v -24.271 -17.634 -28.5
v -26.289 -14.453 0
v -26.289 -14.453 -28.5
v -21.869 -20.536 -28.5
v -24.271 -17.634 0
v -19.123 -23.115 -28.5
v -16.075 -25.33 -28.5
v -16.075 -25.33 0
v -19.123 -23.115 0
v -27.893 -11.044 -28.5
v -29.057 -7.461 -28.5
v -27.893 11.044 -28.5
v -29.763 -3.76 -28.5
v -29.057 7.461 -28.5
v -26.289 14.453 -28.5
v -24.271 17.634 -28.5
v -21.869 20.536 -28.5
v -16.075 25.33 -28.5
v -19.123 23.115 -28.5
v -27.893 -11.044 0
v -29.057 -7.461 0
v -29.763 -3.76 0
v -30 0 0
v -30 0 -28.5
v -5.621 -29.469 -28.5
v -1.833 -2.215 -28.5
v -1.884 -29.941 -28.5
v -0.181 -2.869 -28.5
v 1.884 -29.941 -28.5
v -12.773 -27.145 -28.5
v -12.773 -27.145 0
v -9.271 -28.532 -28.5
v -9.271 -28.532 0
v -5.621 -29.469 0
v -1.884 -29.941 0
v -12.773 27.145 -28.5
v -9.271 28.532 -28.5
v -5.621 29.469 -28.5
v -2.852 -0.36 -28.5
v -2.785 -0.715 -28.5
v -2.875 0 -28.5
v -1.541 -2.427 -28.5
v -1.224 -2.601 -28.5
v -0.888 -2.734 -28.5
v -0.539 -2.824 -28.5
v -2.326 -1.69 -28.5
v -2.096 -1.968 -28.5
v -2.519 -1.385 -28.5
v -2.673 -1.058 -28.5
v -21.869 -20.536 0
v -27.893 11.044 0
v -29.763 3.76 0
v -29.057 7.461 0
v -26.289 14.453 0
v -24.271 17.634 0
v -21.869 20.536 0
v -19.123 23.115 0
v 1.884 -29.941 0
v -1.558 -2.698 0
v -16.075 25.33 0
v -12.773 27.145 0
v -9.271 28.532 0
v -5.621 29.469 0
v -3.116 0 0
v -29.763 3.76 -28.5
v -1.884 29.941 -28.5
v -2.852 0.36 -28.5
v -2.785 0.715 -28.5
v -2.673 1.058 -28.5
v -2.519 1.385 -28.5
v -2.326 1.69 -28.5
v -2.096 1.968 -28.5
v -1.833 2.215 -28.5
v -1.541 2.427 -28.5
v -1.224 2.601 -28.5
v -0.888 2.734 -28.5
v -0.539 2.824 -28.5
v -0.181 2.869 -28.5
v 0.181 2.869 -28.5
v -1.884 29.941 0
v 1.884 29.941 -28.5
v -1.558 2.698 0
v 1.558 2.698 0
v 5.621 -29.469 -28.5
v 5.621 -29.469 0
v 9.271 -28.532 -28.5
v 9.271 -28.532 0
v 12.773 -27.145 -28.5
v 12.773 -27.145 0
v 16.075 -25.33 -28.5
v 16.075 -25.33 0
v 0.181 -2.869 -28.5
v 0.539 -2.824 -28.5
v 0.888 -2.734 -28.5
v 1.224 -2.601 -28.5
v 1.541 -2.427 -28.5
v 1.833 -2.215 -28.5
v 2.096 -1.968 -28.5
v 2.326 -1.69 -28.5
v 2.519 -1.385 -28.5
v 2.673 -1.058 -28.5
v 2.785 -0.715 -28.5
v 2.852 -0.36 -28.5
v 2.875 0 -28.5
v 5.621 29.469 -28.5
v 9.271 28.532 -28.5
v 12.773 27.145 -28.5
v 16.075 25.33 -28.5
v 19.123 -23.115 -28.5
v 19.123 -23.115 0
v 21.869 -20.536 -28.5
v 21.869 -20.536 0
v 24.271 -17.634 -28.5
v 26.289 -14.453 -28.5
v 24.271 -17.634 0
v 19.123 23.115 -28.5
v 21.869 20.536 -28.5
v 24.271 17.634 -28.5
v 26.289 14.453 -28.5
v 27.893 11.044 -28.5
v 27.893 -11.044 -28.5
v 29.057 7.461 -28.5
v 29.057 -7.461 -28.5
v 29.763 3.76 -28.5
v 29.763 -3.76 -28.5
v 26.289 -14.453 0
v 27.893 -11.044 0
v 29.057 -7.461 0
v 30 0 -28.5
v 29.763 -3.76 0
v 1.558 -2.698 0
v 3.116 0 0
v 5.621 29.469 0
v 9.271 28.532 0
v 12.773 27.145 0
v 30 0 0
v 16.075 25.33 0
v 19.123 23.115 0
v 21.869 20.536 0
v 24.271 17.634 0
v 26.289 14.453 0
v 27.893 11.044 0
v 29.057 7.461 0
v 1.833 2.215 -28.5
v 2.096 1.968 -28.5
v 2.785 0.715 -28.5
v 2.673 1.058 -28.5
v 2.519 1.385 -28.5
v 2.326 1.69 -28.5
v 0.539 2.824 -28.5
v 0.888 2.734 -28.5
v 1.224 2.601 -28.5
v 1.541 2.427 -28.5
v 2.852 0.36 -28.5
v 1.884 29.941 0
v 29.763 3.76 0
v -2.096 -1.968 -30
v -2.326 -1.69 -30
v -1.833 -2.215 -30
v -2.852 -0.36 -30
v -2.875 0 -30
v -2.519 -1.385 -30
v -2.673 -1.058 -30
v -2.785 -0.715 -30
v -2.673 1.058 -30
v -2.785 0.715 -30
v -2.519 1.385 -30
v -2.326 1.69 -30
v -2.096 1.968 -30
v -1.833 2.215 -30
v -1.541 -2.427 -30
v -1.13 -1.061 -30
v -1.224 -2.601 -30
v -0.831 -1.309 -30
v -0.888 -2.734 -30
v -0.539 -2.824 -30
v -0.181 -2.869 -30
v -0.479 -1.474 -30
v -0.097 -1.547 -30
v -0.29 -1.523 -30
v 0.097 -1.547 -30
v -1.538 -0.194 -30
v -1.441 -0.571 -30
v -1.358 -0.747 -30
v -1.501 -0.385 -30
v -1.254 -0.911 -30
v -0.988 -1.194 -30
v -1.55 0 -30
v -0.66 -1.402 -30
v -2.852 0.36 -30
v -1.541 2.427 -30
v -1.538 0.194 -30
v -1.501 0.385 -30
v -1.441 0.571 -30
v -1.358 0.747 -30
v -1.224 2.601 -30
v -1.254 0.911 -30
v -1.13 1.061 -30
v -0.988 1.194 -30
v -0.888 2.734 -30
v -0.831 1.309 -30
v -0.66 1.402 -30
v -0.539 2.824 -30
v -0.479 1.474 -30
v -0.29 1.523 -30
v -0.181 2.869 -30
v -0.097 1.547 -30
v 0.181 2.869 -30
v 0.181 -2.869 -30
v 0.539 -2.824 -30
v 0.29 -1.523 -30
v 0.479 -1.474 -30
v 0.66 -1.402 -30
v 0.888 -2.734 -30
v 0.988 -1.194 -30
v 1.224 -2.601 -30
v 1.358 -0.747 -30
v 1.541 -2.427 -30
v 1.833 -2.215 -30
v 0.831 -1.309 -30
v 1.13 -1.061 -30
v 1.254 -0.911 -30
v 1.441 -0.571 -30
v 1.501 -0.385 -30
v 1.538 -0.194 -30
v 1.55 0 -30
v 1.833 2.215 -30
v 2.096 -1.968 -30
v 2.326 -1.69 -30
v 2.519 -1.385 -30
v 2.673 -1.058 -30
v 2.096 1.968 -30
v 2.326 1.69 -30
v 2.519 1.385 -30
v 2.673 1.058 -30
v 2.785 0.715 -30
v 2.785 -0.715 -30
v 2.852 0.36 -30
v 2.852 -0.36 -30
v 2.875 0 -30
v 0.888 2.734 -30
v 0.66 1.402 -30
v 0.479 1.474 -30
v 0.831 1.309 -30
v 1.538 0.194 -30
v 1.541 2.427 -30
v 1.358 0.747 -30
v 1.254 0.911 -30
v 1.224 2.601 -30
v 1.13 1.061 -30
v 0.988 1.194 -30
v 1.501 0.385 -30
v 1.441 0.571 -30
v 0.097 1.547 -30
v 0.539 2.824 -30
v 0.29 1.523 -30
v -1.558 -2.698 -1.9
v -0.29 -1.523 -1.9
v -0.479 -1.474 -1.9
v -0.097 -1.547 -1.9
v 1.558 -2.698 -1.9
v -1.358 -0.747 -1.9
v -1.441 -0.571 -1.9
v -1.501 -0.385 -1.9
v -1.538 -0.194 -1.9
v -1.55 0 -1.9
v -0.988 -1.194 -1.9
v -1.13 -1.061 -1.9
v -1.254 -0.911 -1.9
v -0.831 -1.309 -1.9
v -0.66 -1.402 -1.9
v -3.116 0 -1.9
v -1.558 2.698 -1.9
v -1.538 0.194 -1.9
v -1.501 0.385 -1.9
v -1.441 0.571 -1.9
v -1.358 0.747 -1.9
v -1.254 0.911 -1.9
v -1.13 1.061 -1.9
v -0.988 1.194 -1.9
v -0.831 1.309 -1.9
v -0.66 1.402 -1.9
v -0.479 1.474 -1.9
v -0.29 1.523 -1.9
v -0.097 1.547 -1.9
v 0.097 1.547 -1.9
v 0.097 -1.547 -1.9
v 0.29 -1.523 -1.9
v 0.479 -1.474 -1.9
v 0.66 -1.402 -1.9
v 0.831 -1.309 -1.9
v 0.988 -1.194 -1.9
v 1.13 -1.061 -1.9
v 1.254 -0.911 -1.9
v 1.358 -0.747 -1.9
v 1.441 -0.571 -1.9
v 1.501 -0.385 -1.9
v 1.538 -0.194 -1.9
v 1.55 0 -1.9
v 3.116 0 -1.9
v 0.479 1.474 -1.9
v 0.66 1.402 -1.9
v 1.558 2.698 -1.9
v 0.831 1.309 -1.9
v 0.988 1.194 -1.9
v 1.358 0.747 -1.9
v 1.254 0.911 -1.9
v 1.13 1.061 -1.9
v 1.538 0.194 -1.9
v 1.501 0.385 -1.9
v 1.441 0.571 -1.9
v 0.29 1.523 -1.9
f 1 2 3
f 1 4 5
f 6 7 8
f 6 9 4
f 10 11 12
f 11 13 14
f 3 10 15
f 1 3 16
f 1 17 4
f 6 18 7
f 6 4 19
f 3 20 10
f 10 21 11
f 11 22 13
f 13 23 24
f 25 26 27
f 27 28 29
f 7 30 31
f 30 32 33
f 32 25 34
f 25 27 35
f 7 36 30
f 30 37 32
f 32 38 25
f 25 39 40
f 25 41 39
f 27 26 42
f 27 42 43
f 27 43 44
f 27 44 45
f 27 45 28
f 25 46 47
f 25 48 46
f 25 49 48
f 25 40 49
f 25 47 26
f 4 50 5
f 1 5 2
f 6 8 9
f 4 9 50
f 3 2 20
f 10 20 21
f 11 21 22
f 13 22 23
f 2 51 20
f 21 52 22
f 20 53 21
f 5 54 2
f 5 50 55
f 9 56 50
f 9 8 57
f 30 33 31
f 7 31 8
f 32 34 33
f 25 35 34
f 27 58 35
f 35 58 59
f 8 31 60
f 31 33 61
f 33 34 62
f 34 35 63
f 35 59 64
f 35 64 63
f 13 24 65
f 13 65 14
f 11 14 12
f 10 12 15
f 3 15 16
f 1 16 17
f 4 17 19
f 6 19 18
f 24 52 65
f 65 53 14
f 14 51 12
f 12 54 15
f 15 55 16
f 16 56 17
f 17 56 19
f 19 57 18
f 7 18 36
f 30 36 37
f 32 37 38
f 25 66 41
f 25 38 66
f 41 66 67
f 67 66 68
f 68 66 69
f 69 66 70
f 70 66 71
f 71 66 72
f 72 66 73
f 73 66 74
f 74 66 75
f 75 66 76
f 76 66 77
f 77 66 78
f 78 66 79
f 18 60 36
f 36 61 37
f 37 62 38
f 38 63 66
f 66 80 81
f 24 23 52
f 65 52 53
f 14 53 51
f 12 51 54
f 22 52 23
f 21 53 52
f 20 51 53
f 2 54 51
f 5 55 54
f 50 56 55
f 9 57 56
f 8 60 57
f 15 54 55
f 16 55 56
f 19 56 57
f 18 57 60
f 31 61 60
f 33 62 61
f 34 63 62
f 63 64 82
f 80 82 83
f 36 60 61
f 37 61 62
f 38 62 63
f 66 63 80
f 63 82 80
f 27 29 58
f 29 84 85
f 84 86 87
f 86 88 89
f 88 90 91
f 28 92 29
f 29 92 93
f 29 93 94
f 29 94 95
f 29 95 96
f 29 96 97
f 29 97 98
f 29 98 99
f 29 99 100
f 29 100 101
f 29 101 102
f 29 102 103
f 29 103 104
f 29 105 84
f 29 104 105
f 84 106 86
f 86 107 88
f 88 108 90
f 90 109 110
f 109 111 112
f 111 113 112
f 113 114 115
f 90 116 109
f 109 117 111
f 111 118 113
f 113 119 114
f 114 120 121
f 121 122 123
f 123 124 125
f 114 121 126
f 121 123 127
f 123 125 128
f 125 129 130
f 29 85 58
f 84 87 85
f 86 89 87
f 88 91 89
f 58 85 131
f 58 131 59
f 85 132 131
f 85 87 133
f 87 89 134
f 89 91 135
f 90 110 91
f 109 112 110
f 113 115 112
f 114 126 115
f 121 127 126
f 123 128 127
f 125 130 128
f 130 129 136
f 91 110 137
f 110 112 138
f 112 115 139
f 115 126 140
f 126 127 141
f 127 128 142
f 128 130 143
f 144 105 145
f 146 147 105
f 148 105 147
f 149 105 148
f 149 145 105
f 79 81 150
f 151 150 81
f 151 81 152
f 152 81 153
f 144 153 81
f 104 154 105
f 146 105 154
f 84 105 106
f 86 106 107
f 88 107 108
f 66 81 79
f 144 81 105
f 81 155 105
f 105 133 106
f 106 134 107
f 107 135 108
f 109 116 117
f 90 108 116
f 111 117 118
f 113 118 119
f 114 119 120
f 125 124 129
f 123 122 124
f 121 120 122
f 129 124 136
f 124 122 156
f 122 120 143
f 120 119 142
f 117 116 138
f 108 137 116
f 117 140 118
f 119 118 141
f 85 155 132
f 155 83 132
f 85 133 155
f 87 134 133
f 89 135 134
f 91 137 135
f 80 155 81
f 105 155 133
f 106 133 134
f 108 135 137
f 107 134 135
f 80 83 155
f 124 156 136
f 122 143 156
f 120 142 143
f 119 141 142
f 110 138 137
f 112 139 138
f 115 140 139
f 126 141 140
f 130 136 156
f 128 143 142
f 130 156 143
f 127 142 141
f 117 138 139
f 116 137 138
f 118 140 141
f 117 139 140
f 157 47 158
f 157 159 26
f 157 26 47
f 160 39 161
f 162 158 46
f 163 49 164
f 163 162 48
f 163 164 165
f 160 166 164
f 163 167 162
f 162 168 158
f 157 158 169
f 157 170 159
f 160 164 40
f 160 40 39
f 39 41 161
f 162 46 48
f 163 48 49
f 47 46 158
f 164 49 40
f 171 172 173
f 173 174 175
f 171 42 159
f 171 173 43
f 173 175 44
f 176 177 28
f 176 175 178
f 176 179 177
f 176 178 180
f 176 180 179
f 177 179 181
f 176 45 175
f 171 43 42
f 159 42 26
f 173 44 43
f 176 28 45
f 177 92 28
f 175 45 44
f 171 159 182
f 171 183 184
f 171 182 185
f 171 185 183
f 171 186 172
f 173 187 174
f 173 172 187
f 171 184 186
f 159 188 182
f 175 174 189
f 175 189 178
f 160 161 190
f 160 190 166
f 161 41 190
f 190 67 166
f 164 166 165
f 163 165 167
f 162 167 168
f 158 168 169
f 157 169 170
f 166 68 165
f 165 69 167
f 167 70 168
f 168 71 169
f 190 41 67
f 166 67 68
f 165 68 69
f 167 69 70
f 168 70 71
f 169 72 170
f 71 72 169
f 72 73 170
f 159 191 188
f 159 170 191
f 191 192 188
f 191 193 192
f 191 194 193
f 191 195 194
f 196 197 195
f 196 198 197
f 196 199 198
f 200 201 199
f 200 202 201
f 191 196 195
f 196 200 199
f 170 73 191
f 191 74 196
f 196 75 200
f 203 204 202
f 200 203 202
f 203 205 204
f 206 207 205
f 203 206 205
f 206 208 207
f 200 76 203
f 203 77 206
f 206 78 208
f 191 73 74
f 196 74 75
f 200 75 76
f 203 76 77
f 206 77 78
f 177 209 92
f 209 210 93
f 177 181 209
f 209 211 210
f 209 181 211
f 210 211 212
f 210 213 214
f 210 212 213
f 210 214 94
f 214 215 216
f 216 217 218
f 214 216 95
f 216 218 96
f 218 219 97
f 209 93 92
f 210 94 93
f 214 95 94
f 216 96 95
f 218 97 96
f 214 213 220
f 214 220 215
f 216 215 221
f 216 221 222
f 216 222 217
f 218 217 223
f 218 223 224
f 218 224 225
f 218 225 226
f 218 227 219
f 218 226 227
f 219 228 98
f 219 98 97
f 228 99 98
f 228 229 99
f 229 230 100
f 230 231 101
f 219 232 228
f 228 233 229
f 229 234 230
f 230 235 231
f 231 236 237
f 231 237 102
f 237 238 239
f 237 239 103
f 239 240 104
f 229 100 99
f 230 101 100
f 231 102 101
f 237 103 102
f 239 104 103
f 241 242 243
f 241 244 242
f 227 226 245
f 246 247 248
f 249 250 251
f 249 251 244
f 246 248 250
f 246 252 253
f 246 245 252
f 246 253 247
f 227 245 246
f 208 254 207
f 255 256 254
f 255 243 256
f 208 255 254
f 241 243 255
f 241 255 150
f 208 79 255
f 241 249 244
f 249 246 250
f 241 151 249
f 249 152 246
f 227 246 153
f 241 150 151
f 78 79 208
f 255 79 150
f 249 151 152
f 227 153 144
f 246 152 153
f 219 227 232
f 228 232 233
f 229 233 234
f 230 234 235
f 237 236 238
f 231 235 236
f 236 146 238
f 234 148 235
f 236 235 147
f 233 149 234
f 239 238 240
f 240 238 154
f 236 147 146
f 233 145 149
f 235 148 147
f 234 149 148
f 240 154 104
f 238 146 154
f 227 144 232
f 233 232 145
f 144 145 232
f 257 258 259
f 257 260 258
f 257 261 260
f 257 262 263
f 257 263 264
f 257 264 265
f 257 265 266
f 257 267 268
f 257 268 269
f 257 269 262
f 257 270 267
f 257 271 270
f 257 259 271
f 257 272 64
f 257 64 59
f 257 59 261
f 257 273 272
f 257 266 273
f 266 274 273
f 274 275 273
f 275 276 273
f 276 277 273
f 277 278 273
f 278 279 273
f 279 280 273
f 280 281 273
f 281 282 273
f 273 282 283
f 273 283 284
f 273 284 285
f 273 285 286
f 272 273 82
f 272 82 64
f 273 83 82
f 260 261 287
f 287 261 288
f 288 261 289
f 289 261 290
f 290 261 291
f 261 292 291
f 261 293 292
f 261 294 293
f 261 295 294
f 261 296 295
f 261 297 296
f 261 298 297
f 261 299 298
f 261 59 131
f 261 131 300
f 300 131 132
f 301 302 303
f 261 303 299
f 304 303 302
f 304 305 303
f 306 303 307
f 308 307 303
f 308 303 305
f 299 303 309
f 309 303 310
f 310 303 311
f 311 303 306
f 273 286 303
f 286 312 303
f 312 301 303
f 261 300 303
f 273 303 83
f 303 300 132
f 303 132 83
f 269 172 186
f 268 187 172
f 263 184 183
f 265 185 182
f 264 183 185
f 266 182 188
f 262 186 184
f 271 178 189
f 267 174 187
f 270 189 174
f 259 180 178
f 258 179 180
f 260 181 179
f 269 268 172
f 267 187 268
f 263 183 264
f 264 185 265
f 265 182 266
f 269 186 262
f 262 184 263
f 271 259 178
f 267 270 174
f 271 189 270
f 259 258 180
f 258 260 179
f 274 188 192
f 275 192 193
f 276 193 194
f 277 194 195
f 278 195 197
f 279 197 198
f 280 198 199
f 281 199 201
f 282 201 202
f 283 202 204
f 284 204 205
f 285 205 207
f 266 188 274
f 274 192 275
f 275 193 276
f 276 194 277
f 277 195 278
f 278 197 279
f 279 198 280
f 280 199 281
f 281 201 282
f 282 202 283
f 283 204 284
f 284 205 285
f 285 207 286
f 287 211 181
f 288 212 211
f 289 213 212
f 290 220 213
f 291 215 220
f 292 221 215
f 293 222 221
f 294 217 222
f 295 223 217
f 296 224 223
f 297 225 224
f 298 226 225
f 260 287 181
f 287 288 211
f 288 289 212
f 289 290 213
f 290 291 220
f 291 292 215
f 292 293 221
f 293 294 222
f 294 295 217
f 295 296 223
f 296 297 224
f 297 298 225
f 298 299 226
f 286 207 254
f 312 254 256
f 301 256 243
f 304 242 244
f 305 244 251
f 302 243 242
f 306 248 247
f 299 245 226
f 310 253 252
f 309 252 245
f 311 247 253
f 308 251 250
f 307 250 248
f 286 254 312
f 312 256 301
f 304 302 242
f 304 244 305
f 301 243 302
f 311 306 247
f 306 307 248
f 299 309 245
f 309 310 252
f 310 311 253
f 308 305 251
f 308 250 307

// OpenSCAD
$fn = 50;


difference() {
	union() {
		translate(v = [0, 0, -28.5000000000]) {
			cylinder(h = 28.5000000000, r = 30.0000000000);
		}
		#translate(v = [0, 0, -30.0000000000]) {
			cylinder(h = 30, r = 2.8750000000);
		}
	}
	union() {
		translate(v = [0, 0, 0]) {
			rotate(a = [0, 0, 0]) {
				difference() {
					union() {
						translate(v = [0, 0, -1.9000000000]) {
							linear_extrude(height = 1.9000000000) {
								polygon(points = [[3.1158000000, 0.0000000000], [1.5579000000, 2.6983619531], [-1.5579000000, 2.6983619531], [-3.1158000000, 0.0000000000], [-1.5579000000, -2.6983619531], [1.5579000000, -2.6983619531]]);
							}
						}
					}
					union();
				}
			}
		}
		#translate(v = [0, 0, -100.0000000000]) {
			cylinder(h = 200, r = 1.5500000000);
		}
	}
}
